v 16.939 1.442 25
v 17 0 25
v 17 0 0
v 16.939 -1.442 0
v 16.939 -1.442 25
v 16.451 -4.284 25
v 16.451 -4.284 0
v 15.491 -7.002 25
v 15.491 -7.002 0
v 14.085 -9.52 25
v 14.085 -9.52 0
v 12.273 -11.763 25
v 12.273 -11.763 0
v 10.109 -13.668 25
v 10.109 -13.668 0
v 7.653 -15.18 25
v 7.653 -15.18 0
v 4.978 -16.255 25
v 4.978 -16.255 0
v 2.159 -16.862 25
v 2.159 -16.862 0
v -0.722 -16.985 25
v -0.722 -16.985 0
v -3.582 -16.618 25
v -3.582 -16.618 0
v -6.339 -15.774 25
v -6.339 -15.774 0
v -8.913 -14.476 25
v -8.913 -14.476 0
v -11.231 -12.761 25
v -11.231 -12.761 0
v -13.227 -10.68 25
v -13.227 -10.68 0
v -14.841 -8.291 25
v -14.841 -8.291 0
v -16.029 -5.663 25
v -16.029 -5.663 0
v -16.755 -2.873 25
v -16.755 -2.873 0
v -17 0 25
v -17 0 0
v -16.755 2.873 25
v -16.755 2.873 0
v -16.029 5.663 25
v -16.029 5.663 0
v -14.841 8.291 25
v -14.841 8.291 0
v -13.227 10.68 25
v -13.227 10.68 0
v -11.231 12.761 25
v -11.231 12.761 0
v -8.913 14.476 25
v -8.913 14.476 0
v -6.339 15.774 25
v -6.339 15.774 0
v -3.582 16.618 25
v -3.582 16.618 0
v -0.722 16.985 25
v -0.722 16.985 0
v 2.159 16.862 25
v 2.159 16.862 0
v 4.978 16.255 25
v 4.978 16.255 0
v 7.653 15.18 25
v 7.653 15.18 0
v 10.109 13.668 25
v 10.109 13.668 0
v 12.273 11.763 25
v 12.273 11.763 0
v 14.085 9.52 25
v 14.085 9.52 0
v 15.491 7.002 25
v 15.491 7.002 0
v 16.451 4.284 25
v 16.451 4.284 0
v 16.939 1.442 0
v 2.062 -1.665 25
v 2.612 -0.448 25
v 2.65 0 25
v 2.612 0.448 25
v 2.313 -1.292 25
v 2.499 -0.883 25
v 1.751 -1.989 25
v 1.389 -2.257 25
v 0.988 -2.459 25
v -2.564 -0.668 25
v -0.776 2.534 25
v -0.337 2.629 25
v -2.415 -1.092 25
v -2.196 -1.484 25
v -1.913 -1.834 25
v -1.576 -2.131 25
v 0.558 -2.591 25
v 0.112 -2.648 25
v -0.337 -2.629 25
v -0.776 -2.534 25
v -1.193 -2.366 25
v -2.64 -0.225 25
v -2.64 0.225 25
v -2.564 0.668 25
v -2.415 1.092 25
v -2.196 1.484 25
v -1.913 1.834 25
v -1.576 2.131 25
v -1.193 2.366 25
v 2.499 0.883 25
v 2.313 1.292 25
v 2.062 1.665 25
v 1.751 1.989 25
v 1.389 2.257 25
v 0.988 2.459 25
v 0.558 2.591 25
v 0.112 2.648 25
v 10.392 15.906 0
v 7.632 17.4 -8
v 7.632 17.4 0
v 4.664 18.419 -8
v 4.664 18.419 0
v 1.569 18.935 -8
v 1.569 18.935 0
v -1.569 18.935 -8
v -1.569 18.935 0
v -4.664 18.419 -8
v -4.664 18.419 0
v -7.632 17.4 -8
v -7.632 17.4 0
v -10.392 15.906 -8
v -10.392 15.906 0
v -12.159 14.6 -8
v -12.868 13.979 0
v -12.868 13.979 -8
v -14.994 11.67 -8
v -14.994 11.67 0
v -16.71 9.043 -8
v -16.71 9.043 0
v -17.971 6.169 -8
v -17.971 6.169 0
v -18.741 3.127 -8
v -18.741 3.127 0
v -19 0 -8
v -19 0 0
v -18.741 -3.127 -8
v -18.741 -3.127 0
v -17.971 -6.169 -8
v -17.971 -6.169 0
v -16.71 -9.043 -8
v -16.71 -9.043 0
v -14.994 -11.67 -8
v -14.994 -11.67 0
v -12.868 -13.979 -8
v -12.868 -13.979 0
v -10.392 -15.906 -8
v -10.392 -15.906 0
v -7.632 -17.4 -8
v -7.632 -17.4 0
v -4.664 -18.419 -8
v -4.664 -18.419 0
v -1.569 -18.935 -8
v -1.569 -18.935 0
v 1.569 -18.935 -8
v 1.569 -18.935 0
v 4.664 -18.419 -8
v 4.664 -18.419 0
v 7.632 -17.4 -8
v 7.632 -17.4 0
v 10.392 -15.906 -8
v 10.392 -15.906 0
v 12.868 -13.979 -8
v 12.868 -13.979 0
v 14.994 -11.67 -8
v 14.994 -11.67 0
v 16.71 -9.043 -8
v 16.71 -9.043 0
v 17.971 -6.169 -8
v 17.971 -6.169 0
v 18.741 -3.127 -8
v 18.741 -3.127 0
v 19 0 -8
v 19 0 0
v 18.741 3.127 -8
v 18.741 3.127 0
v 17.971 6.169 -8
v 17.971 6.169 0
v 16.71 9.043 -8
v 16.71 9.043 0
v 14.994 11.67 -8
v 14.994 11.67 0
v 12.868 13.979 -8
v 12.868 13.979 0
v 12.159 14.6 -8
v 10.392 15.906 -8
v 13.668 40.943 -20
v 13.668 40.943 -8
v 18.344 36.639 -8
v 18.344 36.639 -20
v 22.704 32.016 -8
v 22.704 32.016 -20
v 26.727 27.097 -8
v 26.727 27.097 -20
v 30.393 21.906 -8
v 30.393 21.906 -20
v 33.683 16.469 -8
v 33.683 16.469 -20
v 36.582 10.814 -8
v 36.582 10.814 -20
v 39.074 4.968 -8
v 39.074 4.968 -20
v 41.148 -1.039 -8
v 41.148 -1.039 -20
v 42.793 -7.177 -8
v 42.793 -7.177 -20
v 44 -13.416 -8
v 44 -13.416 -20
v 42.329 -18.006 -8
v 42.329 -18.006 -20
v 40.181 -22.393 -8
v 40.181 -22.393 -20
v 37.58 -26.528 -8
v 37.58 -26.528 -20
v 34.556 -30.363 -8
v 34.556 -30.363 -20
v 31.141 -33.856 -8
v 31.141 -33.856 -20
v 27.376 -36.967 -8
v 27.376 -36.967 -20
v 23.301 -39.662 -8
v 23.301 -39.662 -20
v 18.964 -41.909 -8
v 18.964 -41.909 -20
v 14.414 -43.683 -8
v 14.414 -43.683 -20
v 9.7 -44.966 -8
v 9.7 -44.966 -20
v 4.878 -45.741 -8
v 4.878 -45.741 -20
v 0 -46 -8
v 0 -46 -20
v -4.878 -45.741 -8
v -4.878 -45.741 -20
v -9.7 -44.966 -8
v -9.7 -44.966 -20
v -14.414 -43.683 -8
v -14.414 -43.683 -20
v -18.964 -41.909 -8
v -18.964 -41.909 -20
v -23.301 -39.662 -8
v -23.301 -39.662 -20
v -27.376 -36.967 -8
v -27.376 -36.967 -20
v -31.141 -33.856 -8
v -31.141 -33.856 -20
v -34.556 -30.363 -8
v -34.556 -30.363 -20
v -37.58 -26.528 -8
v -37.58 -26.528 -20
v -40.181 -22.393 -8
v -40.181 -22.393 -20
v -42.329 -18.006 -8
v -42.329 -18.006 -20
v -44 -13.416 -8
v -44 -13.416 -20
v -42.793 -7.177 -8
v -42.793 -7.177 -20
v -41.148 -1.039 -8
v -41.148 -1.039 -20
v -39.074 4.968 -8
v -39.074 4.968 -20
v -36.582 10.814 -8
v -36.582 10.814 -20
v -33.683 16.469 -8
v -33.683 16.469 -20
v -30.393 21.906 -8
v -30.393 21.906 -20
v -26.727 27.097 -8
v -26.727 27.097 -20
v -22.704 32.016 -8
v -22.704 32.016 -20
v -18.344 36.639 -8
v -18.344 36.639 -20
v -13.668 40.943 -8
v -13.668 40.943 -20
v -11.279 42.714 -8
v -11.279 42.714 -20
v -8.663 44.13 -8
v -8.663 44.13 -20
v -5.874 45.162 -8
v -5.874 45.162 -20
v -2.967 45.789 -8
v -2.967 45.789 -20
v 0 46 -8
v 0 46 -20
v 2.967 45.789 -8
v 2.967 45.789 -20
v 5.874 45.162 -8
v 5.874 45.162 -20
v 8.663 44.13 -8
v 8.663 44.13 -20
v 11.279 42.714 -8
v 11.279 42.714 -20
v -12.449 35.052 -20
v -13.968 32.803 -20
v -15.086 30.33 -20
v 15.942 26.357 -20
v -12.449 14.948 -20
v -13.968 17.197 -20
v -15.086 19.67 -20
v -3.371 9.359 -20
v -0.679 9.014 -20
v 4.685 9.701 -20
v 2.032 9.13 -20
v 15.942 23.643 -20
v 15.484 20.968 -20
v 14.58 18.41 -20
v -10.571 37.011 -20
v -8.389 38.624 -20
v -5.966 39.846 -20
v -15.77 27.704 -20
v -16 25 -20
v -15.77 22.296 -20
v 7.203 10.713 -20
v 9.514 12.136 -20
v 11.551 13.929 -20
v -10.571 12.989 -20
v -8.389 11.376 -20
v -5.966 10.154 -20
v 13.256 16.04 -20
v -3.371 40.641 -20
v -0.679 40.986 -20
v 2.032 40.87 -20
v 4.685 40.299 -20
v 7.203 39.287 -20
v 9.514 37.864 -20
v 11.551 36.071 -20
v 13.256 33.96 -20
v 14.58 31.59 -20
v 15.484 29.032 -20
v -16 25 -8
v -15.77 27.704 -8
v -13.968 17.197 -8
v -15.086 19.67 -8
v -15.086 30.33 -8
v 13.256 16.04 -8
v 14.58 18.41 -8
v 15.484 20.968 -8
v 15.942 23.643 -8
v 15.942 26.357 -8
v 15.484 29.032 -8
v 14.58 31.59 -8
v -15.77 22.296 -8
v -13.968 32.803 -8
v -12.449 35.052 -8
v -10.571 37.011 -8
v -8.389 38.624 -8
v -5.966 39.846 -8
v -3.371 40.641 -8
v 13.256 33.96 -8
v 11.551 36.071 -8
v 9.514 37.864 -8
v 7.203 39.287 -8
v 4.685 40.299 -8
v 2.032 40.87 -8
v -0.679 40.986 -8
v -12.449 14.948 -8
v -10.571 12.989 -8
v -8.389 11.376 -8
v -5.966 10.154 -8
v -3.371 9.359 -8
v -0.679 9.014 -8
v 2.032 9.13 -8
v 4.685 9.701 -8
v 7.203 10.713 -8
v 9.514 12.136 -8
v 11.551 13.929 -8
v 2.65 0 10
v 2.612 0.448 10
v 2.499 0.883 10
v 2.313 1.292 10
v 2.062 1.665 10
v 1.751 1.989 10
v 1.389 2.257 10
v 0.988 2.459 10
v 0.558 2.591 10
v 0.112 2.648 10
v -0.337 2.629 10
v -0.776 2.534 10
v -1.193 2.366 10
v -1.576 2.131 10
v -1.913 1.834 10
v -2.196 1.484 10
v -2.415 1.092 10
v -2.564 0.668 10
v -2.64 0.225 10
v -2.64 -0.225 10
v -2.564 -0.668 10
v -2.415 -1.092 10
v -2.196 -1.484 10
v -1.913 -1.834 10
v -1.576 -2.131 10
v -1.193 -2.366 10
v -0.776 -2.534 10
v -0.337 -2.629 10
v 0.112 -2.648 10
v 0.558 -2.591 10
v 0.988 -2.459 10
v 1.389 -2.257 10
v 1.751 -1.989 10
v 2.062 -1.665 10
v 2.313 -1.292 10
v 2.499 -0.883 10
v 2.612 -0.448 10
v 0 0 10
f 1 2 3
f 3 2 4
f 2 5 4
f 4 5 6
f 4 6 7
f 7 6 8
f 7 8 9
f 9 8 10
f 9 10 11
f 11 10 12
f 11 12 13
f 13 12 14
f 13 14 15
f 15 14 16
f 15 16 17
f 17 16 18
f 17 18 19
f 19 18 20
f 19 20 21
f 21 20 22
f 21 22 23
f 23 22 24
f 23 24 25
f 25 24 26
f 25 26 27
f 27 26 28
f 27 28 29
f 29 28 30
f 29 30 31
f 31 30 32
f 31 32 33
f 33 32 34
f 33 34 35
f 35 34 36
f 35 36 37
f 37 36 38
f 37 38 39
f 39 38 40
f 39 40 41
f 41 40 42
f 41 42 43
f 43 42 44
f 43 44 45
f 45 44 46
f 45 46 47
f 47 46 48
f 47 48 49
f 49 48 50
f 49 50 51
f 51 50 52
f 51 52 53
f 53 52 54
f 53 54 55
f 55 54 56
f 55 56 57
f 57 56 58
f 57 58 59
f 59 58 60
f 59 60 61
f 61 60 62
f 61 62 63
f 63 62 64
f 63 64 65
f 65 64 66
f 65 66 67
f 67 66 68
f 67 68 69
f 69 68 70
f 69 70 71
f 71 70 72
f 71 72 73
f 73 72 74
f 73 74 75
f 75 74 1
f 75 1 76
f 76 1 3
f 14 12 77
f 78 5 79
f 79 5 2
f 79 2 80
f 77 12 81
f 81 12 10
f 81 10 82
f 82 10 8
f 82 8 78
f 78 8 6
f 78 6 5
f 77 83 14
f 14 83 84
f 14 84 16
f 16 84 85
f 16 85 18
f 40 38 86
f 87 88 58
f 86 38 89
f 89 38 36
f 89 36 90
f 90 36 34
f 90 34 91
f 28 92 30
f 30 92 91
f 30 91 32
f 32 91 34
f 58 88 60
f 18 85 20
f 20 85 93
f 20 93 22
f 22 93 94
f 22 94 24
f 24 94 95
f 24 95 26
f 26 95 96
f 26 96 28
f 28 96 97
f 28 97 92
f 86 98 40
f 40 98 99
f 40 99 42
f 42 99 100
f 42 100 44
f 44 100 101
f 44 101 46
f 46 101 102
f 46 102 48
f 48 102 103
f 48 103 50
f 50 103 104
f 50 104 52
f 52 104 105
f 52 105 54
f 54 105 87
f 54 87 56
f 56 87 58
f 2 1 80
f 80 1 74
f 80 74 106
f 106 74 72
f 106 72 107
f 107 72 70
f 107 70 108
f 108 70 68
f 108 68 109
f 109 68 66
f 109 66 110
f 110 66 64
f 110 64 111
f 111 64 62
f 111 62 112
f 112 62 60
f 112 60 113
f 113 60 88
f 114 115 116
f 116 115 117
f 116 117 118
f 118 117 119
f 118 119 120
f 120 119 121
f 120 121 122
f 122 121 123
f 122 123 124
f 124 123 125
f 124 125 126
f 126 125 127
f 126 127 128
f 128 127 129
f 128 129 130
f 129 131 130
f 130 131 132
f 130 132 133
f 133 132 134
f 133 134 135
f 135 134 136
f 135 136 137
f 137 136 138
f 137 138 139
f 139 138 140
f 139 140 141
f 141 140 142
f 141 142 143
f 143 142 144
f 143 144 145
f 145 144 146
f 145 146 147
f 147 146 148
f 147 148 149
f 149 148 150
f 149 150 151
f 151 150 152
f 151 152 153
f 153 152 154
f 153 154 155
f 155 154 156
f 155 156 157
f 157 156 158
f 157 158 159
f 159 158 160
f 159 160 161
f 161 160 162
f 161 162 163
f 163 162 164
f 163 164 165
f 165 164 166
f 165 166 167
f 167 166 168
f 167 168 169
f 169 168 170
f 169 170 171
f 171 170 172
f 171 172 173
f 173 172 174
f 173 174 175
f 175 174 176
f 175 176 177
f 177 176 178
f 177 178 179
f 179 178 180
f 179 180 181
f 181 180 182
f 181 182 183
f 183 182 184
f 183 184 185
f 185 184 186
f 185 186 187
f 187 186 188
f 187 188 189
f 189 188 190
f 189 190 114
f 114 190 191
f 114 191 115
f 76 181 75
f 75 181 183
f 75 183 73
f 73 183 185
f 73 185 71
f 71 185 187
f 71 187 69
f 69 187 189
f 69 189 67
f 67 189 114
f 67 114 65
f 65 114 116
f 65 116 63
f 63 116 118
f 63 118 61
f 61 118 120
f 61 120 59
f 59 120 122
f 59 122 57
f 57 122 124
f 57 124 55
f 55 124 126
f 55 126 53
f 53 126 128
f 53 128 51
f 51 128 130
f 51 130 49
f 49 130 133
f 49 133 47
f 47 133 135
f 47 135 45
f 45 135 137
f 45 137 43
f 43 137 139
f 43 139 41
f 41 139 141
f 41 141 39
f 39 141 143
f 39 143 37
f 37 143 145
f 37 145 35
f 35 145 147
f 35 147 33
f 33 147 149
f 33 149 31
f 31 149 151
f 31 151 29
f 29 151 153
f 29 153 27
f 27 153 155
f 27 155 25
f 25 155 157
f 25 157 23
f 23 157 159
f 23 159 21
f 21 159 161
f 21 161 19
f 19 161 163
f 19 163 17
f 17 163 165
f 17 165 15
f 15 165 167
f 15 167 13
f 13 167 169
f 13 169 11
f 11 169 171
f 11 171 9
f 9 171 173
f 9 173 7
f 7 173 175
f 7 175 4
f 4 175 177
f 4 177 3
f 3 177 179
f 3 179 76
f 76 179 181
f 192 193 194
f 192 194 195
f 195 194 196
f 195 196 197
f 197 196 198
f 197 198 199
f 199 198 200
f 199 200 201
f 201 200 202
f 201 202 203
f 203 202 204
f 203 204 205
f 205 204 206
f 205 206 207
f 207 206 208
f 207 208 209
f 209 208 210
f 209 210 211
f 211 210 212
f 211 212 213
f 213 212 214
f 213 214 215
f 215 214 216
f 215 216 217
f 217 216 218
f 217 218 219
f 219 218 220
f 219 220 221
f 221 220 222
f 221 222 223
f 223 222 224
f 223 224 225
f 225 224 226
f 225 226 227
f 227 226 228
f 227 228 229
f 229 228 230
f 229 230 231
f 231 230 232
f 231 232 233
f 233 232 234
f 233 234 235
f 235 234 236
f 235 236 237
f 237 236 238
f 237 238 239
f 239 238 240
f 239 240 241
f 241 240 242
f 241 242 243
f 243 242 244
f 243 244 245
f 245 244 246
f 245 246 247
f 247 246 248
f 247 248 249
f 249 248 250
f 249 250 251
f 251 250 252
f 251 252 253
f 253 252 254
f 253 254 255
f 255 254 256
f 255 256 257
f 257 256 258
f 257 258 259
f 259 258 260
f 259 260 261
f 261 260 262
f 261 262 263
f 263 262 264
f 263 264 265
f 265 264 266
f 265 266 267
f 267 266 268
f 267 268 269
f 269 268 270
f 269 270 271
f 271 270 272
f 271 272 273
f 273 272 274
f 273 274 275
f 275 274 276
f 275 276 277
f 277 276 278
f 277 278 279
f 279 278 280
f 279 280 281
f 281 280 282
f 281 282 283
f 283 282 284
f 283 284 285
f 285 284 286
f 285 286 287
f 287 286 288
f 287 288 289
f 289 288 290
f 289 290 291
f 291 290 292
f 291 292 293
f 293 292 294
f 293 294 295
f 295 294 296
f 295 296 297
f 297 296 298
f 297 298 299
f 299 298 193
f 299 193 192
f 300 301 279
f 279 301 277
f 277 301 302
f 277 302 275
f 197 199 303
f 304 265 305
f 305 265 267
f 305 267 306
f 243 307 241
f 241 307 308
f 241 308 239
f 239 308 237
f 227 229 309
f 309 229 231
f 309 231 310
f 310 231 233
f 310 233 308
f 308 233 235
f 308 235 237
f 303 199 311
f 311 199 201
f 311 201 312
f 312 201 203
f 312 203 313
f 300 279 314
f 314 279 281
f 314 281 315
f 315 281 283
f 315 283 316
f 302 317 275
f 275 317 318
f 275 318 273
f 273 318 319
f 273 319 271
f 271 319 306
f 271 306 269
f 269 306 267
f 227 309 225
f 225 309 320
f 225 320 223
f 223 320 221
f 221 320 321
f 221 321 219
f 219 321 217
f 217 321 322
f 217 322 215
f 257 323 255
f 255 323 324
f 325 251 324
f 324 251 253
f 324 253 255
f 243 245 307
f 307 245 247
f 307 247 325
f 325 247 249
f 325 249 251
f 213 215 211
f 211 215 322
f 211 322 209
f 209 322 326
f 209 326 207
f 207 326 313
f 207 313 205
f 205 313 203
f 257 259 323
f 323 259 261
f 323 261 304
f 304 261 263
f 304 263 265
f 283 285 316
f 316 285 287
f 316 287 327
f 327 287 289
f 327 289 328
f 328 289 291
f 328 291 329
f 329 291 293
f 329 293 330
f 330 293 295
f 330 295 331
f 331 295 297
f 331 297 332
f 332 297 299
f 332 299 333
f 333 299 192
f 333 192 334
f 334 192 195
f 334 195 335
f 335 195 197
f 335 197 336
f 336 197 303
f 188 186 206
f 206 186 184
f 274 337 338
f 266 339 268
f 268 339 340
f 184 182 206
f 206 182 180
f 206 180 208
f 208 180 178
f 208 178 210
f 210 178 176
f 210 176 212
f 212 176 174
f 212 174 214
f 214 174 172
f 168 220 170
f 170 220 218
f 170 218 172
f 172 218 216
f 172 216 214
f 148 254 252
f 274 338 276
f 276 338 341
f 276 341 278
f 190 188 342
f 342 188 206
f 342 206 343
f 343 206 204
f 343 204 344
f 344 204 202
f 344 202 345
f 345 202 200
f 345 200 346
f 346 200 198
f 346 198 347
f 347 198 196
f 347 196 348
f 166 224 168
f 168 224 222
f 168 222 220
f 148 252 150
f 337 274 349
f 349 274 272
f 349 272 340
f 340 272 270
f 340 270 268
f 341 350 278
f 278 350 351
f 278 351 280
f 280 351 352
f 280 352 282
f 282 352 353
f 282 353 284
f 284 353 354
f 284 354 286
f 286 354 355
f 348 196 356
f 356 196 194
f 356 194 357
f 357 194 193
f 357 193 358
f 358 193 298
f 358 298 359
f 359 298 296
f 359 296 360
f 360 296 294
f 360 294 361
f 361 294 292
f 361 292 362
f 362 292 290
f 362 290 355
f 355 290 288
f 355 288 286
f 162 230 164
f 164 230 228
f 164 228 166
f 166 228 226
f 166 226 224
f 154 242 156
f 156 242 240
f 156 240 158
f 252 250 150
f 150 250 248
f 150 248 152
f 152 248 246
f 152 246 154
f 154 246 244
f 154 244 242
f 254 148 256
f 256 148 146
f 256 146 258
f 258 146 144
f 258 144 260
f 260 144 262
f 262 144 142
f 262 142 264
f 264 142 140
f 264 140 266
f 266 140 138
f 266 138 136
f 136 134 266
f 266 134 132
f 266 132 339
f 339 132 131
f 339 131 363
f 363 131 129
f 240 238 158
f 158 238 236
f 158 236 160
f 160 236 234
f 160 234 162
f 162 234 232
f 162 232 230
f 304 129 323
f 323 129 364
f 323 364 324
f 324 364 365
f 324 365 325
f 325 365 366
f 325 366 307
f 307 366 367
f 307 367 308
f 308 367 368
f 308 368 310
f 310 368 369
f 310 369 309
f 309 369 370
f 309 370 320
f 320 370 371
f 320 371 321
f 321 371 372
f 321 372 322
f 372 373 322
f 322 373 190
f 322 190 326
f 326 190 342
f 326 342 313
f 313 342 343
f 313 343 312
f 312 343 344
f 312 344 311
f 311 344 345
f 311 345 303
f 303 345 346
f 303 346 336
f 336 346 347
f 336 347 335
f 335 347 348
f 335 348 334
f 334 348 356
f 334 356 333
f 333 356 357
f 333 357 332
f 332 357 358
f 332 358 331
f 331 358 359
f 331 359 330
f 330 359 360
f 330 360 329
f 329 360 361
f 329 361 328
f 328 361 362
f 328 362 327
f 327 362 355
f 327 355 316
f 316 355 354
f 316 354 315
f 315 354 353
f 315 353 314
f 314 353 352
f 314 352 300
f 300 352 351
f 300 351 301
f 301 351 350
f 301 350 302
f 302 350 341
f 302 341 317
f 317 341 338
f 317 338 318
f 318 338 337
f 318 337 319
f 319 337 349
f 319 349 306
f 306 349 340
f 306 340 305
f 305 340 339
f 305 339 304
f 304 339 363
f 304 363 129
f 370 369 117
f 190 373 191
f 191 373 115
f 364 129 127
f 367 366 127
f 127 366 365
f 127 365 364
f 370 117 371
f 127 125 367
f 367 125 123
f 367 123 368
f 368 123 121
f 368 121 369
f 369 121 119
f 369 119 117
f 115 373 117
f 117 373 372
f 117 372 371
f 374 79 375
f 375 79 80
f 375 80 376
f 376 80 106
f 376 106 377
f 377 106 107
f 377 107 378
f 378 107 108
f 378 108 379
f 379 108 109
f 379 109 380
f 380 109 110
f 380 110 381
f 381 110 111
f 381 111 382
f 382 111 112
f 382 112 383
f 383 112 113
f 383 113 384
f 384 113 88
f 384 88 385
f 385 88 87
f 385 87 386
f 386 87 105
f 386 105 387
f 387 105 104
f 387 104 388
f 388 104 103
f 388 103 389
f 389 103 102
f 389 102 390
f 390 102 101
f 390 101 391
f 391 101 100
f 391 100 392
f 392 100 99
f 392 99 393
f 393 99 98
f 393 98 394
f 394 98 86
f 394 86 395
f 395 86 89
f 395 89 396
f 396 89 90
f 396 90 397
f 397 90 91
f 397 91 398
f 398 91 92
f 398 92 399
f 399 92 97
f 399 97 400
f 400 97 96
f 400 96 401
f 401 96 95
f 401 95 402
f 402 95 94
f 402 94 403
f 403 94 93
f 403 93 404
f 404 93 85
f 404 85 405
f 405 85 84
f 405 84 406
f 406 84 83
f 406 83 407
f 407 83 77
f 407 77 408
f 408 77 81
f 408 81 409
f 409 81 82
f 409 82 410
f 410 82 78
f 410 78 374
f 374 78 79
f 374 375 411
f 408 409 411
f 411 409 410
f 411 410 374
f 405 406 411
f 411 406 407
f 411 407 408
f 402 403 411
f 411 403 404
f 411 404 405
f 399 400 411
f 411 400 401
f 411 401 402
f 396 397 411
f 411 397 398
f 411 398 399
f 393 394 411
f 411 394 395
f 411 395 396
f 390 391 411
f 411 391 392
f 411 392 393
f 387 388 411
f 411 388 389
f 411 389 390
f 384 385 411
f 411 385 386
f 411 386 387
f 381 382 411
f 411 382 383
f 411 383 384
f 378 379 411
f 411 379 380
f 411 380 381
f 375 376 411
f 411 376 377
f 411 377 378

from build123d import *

# Parameters (mm, degrees)
SKETCH3_R           = 17
BOSS_EXTRUDE2_DEPTH = 25
SKETCH4_R           = 19
BOSS_EXTRUDE3_DEPTH = 8
BOSS_EXTRUDE4_DEPTH = 12
SKETCH9_R           = 16
CUT_EXTRUDE1_DEPTH  = 12
SKETCH10_R          = 2.65
CUT_EXTRUDE2_DEPTH  = 15


with BuildPart() as part:
    # Sketch3 → Boss-Extrude2 (new body)
    with BuildSketch(Plane.XY):
        Circle(SKETCH3_R)
    extrude(amount=BOSS_EXTRUDE2_DEPTH)

    # Sketch4 → Boss-Extrude3 (add)
    with BuildSketch(Plane.XY):
        Circle(SKETCH4_R)
    extrude(amount=-BOSS_EXTRUDE3_DEPTH)

    # Sketch5 → Boss-Extrude4 (add)
    with BuildSketch(Plane(origin=(0, 0, -8), x_dir=(-1, 0, 0), z_dir=(0, 0, -1))):
        with BuildLine():
            ThreePointArc((-44, -13.416407865), (0, -46), (44, -13.416407865))
            ThreePointArc((44, -13.416407865), (33.683444249, 16.469257624), (13.668094758, 40.943123461))
            ThreePointArc((13.668094758, 40.943123461), (0, 46), (-13.668094758, 40.943123461))
            ThreePointArc((-13.668094758, 40.943123461), (-33.683444249, 16.469257624), (-44, -13.416407865))
        make_face()
    extrude(amount=BOSS_EXTRUDE4_DEPTH)

    # Sketch9 → Cut-Extrude1 (cut)
    with BuildSketch(Plane(origin=(0, 0, -20), x_dir=(-1, 0, 0), z_dir=(0, 0, -1))):
        with Locations((0, 25)):
            Circle(SKETCH9_R)
    extrude(amount=-CUT_EXTRUDE1_DEPTH, mode=Mode.SUBTRACT)

    # Sketch10 → Cut-Extrude2 (cut)
    with BuildSketch(Plane.XY.offset(25)):
        Circle(SKETCH10_R)
    extrude(amount=-CUT_EXTRUDE2_DEPTH, mode=Mode.SUBTRACT)


solid = part.part
